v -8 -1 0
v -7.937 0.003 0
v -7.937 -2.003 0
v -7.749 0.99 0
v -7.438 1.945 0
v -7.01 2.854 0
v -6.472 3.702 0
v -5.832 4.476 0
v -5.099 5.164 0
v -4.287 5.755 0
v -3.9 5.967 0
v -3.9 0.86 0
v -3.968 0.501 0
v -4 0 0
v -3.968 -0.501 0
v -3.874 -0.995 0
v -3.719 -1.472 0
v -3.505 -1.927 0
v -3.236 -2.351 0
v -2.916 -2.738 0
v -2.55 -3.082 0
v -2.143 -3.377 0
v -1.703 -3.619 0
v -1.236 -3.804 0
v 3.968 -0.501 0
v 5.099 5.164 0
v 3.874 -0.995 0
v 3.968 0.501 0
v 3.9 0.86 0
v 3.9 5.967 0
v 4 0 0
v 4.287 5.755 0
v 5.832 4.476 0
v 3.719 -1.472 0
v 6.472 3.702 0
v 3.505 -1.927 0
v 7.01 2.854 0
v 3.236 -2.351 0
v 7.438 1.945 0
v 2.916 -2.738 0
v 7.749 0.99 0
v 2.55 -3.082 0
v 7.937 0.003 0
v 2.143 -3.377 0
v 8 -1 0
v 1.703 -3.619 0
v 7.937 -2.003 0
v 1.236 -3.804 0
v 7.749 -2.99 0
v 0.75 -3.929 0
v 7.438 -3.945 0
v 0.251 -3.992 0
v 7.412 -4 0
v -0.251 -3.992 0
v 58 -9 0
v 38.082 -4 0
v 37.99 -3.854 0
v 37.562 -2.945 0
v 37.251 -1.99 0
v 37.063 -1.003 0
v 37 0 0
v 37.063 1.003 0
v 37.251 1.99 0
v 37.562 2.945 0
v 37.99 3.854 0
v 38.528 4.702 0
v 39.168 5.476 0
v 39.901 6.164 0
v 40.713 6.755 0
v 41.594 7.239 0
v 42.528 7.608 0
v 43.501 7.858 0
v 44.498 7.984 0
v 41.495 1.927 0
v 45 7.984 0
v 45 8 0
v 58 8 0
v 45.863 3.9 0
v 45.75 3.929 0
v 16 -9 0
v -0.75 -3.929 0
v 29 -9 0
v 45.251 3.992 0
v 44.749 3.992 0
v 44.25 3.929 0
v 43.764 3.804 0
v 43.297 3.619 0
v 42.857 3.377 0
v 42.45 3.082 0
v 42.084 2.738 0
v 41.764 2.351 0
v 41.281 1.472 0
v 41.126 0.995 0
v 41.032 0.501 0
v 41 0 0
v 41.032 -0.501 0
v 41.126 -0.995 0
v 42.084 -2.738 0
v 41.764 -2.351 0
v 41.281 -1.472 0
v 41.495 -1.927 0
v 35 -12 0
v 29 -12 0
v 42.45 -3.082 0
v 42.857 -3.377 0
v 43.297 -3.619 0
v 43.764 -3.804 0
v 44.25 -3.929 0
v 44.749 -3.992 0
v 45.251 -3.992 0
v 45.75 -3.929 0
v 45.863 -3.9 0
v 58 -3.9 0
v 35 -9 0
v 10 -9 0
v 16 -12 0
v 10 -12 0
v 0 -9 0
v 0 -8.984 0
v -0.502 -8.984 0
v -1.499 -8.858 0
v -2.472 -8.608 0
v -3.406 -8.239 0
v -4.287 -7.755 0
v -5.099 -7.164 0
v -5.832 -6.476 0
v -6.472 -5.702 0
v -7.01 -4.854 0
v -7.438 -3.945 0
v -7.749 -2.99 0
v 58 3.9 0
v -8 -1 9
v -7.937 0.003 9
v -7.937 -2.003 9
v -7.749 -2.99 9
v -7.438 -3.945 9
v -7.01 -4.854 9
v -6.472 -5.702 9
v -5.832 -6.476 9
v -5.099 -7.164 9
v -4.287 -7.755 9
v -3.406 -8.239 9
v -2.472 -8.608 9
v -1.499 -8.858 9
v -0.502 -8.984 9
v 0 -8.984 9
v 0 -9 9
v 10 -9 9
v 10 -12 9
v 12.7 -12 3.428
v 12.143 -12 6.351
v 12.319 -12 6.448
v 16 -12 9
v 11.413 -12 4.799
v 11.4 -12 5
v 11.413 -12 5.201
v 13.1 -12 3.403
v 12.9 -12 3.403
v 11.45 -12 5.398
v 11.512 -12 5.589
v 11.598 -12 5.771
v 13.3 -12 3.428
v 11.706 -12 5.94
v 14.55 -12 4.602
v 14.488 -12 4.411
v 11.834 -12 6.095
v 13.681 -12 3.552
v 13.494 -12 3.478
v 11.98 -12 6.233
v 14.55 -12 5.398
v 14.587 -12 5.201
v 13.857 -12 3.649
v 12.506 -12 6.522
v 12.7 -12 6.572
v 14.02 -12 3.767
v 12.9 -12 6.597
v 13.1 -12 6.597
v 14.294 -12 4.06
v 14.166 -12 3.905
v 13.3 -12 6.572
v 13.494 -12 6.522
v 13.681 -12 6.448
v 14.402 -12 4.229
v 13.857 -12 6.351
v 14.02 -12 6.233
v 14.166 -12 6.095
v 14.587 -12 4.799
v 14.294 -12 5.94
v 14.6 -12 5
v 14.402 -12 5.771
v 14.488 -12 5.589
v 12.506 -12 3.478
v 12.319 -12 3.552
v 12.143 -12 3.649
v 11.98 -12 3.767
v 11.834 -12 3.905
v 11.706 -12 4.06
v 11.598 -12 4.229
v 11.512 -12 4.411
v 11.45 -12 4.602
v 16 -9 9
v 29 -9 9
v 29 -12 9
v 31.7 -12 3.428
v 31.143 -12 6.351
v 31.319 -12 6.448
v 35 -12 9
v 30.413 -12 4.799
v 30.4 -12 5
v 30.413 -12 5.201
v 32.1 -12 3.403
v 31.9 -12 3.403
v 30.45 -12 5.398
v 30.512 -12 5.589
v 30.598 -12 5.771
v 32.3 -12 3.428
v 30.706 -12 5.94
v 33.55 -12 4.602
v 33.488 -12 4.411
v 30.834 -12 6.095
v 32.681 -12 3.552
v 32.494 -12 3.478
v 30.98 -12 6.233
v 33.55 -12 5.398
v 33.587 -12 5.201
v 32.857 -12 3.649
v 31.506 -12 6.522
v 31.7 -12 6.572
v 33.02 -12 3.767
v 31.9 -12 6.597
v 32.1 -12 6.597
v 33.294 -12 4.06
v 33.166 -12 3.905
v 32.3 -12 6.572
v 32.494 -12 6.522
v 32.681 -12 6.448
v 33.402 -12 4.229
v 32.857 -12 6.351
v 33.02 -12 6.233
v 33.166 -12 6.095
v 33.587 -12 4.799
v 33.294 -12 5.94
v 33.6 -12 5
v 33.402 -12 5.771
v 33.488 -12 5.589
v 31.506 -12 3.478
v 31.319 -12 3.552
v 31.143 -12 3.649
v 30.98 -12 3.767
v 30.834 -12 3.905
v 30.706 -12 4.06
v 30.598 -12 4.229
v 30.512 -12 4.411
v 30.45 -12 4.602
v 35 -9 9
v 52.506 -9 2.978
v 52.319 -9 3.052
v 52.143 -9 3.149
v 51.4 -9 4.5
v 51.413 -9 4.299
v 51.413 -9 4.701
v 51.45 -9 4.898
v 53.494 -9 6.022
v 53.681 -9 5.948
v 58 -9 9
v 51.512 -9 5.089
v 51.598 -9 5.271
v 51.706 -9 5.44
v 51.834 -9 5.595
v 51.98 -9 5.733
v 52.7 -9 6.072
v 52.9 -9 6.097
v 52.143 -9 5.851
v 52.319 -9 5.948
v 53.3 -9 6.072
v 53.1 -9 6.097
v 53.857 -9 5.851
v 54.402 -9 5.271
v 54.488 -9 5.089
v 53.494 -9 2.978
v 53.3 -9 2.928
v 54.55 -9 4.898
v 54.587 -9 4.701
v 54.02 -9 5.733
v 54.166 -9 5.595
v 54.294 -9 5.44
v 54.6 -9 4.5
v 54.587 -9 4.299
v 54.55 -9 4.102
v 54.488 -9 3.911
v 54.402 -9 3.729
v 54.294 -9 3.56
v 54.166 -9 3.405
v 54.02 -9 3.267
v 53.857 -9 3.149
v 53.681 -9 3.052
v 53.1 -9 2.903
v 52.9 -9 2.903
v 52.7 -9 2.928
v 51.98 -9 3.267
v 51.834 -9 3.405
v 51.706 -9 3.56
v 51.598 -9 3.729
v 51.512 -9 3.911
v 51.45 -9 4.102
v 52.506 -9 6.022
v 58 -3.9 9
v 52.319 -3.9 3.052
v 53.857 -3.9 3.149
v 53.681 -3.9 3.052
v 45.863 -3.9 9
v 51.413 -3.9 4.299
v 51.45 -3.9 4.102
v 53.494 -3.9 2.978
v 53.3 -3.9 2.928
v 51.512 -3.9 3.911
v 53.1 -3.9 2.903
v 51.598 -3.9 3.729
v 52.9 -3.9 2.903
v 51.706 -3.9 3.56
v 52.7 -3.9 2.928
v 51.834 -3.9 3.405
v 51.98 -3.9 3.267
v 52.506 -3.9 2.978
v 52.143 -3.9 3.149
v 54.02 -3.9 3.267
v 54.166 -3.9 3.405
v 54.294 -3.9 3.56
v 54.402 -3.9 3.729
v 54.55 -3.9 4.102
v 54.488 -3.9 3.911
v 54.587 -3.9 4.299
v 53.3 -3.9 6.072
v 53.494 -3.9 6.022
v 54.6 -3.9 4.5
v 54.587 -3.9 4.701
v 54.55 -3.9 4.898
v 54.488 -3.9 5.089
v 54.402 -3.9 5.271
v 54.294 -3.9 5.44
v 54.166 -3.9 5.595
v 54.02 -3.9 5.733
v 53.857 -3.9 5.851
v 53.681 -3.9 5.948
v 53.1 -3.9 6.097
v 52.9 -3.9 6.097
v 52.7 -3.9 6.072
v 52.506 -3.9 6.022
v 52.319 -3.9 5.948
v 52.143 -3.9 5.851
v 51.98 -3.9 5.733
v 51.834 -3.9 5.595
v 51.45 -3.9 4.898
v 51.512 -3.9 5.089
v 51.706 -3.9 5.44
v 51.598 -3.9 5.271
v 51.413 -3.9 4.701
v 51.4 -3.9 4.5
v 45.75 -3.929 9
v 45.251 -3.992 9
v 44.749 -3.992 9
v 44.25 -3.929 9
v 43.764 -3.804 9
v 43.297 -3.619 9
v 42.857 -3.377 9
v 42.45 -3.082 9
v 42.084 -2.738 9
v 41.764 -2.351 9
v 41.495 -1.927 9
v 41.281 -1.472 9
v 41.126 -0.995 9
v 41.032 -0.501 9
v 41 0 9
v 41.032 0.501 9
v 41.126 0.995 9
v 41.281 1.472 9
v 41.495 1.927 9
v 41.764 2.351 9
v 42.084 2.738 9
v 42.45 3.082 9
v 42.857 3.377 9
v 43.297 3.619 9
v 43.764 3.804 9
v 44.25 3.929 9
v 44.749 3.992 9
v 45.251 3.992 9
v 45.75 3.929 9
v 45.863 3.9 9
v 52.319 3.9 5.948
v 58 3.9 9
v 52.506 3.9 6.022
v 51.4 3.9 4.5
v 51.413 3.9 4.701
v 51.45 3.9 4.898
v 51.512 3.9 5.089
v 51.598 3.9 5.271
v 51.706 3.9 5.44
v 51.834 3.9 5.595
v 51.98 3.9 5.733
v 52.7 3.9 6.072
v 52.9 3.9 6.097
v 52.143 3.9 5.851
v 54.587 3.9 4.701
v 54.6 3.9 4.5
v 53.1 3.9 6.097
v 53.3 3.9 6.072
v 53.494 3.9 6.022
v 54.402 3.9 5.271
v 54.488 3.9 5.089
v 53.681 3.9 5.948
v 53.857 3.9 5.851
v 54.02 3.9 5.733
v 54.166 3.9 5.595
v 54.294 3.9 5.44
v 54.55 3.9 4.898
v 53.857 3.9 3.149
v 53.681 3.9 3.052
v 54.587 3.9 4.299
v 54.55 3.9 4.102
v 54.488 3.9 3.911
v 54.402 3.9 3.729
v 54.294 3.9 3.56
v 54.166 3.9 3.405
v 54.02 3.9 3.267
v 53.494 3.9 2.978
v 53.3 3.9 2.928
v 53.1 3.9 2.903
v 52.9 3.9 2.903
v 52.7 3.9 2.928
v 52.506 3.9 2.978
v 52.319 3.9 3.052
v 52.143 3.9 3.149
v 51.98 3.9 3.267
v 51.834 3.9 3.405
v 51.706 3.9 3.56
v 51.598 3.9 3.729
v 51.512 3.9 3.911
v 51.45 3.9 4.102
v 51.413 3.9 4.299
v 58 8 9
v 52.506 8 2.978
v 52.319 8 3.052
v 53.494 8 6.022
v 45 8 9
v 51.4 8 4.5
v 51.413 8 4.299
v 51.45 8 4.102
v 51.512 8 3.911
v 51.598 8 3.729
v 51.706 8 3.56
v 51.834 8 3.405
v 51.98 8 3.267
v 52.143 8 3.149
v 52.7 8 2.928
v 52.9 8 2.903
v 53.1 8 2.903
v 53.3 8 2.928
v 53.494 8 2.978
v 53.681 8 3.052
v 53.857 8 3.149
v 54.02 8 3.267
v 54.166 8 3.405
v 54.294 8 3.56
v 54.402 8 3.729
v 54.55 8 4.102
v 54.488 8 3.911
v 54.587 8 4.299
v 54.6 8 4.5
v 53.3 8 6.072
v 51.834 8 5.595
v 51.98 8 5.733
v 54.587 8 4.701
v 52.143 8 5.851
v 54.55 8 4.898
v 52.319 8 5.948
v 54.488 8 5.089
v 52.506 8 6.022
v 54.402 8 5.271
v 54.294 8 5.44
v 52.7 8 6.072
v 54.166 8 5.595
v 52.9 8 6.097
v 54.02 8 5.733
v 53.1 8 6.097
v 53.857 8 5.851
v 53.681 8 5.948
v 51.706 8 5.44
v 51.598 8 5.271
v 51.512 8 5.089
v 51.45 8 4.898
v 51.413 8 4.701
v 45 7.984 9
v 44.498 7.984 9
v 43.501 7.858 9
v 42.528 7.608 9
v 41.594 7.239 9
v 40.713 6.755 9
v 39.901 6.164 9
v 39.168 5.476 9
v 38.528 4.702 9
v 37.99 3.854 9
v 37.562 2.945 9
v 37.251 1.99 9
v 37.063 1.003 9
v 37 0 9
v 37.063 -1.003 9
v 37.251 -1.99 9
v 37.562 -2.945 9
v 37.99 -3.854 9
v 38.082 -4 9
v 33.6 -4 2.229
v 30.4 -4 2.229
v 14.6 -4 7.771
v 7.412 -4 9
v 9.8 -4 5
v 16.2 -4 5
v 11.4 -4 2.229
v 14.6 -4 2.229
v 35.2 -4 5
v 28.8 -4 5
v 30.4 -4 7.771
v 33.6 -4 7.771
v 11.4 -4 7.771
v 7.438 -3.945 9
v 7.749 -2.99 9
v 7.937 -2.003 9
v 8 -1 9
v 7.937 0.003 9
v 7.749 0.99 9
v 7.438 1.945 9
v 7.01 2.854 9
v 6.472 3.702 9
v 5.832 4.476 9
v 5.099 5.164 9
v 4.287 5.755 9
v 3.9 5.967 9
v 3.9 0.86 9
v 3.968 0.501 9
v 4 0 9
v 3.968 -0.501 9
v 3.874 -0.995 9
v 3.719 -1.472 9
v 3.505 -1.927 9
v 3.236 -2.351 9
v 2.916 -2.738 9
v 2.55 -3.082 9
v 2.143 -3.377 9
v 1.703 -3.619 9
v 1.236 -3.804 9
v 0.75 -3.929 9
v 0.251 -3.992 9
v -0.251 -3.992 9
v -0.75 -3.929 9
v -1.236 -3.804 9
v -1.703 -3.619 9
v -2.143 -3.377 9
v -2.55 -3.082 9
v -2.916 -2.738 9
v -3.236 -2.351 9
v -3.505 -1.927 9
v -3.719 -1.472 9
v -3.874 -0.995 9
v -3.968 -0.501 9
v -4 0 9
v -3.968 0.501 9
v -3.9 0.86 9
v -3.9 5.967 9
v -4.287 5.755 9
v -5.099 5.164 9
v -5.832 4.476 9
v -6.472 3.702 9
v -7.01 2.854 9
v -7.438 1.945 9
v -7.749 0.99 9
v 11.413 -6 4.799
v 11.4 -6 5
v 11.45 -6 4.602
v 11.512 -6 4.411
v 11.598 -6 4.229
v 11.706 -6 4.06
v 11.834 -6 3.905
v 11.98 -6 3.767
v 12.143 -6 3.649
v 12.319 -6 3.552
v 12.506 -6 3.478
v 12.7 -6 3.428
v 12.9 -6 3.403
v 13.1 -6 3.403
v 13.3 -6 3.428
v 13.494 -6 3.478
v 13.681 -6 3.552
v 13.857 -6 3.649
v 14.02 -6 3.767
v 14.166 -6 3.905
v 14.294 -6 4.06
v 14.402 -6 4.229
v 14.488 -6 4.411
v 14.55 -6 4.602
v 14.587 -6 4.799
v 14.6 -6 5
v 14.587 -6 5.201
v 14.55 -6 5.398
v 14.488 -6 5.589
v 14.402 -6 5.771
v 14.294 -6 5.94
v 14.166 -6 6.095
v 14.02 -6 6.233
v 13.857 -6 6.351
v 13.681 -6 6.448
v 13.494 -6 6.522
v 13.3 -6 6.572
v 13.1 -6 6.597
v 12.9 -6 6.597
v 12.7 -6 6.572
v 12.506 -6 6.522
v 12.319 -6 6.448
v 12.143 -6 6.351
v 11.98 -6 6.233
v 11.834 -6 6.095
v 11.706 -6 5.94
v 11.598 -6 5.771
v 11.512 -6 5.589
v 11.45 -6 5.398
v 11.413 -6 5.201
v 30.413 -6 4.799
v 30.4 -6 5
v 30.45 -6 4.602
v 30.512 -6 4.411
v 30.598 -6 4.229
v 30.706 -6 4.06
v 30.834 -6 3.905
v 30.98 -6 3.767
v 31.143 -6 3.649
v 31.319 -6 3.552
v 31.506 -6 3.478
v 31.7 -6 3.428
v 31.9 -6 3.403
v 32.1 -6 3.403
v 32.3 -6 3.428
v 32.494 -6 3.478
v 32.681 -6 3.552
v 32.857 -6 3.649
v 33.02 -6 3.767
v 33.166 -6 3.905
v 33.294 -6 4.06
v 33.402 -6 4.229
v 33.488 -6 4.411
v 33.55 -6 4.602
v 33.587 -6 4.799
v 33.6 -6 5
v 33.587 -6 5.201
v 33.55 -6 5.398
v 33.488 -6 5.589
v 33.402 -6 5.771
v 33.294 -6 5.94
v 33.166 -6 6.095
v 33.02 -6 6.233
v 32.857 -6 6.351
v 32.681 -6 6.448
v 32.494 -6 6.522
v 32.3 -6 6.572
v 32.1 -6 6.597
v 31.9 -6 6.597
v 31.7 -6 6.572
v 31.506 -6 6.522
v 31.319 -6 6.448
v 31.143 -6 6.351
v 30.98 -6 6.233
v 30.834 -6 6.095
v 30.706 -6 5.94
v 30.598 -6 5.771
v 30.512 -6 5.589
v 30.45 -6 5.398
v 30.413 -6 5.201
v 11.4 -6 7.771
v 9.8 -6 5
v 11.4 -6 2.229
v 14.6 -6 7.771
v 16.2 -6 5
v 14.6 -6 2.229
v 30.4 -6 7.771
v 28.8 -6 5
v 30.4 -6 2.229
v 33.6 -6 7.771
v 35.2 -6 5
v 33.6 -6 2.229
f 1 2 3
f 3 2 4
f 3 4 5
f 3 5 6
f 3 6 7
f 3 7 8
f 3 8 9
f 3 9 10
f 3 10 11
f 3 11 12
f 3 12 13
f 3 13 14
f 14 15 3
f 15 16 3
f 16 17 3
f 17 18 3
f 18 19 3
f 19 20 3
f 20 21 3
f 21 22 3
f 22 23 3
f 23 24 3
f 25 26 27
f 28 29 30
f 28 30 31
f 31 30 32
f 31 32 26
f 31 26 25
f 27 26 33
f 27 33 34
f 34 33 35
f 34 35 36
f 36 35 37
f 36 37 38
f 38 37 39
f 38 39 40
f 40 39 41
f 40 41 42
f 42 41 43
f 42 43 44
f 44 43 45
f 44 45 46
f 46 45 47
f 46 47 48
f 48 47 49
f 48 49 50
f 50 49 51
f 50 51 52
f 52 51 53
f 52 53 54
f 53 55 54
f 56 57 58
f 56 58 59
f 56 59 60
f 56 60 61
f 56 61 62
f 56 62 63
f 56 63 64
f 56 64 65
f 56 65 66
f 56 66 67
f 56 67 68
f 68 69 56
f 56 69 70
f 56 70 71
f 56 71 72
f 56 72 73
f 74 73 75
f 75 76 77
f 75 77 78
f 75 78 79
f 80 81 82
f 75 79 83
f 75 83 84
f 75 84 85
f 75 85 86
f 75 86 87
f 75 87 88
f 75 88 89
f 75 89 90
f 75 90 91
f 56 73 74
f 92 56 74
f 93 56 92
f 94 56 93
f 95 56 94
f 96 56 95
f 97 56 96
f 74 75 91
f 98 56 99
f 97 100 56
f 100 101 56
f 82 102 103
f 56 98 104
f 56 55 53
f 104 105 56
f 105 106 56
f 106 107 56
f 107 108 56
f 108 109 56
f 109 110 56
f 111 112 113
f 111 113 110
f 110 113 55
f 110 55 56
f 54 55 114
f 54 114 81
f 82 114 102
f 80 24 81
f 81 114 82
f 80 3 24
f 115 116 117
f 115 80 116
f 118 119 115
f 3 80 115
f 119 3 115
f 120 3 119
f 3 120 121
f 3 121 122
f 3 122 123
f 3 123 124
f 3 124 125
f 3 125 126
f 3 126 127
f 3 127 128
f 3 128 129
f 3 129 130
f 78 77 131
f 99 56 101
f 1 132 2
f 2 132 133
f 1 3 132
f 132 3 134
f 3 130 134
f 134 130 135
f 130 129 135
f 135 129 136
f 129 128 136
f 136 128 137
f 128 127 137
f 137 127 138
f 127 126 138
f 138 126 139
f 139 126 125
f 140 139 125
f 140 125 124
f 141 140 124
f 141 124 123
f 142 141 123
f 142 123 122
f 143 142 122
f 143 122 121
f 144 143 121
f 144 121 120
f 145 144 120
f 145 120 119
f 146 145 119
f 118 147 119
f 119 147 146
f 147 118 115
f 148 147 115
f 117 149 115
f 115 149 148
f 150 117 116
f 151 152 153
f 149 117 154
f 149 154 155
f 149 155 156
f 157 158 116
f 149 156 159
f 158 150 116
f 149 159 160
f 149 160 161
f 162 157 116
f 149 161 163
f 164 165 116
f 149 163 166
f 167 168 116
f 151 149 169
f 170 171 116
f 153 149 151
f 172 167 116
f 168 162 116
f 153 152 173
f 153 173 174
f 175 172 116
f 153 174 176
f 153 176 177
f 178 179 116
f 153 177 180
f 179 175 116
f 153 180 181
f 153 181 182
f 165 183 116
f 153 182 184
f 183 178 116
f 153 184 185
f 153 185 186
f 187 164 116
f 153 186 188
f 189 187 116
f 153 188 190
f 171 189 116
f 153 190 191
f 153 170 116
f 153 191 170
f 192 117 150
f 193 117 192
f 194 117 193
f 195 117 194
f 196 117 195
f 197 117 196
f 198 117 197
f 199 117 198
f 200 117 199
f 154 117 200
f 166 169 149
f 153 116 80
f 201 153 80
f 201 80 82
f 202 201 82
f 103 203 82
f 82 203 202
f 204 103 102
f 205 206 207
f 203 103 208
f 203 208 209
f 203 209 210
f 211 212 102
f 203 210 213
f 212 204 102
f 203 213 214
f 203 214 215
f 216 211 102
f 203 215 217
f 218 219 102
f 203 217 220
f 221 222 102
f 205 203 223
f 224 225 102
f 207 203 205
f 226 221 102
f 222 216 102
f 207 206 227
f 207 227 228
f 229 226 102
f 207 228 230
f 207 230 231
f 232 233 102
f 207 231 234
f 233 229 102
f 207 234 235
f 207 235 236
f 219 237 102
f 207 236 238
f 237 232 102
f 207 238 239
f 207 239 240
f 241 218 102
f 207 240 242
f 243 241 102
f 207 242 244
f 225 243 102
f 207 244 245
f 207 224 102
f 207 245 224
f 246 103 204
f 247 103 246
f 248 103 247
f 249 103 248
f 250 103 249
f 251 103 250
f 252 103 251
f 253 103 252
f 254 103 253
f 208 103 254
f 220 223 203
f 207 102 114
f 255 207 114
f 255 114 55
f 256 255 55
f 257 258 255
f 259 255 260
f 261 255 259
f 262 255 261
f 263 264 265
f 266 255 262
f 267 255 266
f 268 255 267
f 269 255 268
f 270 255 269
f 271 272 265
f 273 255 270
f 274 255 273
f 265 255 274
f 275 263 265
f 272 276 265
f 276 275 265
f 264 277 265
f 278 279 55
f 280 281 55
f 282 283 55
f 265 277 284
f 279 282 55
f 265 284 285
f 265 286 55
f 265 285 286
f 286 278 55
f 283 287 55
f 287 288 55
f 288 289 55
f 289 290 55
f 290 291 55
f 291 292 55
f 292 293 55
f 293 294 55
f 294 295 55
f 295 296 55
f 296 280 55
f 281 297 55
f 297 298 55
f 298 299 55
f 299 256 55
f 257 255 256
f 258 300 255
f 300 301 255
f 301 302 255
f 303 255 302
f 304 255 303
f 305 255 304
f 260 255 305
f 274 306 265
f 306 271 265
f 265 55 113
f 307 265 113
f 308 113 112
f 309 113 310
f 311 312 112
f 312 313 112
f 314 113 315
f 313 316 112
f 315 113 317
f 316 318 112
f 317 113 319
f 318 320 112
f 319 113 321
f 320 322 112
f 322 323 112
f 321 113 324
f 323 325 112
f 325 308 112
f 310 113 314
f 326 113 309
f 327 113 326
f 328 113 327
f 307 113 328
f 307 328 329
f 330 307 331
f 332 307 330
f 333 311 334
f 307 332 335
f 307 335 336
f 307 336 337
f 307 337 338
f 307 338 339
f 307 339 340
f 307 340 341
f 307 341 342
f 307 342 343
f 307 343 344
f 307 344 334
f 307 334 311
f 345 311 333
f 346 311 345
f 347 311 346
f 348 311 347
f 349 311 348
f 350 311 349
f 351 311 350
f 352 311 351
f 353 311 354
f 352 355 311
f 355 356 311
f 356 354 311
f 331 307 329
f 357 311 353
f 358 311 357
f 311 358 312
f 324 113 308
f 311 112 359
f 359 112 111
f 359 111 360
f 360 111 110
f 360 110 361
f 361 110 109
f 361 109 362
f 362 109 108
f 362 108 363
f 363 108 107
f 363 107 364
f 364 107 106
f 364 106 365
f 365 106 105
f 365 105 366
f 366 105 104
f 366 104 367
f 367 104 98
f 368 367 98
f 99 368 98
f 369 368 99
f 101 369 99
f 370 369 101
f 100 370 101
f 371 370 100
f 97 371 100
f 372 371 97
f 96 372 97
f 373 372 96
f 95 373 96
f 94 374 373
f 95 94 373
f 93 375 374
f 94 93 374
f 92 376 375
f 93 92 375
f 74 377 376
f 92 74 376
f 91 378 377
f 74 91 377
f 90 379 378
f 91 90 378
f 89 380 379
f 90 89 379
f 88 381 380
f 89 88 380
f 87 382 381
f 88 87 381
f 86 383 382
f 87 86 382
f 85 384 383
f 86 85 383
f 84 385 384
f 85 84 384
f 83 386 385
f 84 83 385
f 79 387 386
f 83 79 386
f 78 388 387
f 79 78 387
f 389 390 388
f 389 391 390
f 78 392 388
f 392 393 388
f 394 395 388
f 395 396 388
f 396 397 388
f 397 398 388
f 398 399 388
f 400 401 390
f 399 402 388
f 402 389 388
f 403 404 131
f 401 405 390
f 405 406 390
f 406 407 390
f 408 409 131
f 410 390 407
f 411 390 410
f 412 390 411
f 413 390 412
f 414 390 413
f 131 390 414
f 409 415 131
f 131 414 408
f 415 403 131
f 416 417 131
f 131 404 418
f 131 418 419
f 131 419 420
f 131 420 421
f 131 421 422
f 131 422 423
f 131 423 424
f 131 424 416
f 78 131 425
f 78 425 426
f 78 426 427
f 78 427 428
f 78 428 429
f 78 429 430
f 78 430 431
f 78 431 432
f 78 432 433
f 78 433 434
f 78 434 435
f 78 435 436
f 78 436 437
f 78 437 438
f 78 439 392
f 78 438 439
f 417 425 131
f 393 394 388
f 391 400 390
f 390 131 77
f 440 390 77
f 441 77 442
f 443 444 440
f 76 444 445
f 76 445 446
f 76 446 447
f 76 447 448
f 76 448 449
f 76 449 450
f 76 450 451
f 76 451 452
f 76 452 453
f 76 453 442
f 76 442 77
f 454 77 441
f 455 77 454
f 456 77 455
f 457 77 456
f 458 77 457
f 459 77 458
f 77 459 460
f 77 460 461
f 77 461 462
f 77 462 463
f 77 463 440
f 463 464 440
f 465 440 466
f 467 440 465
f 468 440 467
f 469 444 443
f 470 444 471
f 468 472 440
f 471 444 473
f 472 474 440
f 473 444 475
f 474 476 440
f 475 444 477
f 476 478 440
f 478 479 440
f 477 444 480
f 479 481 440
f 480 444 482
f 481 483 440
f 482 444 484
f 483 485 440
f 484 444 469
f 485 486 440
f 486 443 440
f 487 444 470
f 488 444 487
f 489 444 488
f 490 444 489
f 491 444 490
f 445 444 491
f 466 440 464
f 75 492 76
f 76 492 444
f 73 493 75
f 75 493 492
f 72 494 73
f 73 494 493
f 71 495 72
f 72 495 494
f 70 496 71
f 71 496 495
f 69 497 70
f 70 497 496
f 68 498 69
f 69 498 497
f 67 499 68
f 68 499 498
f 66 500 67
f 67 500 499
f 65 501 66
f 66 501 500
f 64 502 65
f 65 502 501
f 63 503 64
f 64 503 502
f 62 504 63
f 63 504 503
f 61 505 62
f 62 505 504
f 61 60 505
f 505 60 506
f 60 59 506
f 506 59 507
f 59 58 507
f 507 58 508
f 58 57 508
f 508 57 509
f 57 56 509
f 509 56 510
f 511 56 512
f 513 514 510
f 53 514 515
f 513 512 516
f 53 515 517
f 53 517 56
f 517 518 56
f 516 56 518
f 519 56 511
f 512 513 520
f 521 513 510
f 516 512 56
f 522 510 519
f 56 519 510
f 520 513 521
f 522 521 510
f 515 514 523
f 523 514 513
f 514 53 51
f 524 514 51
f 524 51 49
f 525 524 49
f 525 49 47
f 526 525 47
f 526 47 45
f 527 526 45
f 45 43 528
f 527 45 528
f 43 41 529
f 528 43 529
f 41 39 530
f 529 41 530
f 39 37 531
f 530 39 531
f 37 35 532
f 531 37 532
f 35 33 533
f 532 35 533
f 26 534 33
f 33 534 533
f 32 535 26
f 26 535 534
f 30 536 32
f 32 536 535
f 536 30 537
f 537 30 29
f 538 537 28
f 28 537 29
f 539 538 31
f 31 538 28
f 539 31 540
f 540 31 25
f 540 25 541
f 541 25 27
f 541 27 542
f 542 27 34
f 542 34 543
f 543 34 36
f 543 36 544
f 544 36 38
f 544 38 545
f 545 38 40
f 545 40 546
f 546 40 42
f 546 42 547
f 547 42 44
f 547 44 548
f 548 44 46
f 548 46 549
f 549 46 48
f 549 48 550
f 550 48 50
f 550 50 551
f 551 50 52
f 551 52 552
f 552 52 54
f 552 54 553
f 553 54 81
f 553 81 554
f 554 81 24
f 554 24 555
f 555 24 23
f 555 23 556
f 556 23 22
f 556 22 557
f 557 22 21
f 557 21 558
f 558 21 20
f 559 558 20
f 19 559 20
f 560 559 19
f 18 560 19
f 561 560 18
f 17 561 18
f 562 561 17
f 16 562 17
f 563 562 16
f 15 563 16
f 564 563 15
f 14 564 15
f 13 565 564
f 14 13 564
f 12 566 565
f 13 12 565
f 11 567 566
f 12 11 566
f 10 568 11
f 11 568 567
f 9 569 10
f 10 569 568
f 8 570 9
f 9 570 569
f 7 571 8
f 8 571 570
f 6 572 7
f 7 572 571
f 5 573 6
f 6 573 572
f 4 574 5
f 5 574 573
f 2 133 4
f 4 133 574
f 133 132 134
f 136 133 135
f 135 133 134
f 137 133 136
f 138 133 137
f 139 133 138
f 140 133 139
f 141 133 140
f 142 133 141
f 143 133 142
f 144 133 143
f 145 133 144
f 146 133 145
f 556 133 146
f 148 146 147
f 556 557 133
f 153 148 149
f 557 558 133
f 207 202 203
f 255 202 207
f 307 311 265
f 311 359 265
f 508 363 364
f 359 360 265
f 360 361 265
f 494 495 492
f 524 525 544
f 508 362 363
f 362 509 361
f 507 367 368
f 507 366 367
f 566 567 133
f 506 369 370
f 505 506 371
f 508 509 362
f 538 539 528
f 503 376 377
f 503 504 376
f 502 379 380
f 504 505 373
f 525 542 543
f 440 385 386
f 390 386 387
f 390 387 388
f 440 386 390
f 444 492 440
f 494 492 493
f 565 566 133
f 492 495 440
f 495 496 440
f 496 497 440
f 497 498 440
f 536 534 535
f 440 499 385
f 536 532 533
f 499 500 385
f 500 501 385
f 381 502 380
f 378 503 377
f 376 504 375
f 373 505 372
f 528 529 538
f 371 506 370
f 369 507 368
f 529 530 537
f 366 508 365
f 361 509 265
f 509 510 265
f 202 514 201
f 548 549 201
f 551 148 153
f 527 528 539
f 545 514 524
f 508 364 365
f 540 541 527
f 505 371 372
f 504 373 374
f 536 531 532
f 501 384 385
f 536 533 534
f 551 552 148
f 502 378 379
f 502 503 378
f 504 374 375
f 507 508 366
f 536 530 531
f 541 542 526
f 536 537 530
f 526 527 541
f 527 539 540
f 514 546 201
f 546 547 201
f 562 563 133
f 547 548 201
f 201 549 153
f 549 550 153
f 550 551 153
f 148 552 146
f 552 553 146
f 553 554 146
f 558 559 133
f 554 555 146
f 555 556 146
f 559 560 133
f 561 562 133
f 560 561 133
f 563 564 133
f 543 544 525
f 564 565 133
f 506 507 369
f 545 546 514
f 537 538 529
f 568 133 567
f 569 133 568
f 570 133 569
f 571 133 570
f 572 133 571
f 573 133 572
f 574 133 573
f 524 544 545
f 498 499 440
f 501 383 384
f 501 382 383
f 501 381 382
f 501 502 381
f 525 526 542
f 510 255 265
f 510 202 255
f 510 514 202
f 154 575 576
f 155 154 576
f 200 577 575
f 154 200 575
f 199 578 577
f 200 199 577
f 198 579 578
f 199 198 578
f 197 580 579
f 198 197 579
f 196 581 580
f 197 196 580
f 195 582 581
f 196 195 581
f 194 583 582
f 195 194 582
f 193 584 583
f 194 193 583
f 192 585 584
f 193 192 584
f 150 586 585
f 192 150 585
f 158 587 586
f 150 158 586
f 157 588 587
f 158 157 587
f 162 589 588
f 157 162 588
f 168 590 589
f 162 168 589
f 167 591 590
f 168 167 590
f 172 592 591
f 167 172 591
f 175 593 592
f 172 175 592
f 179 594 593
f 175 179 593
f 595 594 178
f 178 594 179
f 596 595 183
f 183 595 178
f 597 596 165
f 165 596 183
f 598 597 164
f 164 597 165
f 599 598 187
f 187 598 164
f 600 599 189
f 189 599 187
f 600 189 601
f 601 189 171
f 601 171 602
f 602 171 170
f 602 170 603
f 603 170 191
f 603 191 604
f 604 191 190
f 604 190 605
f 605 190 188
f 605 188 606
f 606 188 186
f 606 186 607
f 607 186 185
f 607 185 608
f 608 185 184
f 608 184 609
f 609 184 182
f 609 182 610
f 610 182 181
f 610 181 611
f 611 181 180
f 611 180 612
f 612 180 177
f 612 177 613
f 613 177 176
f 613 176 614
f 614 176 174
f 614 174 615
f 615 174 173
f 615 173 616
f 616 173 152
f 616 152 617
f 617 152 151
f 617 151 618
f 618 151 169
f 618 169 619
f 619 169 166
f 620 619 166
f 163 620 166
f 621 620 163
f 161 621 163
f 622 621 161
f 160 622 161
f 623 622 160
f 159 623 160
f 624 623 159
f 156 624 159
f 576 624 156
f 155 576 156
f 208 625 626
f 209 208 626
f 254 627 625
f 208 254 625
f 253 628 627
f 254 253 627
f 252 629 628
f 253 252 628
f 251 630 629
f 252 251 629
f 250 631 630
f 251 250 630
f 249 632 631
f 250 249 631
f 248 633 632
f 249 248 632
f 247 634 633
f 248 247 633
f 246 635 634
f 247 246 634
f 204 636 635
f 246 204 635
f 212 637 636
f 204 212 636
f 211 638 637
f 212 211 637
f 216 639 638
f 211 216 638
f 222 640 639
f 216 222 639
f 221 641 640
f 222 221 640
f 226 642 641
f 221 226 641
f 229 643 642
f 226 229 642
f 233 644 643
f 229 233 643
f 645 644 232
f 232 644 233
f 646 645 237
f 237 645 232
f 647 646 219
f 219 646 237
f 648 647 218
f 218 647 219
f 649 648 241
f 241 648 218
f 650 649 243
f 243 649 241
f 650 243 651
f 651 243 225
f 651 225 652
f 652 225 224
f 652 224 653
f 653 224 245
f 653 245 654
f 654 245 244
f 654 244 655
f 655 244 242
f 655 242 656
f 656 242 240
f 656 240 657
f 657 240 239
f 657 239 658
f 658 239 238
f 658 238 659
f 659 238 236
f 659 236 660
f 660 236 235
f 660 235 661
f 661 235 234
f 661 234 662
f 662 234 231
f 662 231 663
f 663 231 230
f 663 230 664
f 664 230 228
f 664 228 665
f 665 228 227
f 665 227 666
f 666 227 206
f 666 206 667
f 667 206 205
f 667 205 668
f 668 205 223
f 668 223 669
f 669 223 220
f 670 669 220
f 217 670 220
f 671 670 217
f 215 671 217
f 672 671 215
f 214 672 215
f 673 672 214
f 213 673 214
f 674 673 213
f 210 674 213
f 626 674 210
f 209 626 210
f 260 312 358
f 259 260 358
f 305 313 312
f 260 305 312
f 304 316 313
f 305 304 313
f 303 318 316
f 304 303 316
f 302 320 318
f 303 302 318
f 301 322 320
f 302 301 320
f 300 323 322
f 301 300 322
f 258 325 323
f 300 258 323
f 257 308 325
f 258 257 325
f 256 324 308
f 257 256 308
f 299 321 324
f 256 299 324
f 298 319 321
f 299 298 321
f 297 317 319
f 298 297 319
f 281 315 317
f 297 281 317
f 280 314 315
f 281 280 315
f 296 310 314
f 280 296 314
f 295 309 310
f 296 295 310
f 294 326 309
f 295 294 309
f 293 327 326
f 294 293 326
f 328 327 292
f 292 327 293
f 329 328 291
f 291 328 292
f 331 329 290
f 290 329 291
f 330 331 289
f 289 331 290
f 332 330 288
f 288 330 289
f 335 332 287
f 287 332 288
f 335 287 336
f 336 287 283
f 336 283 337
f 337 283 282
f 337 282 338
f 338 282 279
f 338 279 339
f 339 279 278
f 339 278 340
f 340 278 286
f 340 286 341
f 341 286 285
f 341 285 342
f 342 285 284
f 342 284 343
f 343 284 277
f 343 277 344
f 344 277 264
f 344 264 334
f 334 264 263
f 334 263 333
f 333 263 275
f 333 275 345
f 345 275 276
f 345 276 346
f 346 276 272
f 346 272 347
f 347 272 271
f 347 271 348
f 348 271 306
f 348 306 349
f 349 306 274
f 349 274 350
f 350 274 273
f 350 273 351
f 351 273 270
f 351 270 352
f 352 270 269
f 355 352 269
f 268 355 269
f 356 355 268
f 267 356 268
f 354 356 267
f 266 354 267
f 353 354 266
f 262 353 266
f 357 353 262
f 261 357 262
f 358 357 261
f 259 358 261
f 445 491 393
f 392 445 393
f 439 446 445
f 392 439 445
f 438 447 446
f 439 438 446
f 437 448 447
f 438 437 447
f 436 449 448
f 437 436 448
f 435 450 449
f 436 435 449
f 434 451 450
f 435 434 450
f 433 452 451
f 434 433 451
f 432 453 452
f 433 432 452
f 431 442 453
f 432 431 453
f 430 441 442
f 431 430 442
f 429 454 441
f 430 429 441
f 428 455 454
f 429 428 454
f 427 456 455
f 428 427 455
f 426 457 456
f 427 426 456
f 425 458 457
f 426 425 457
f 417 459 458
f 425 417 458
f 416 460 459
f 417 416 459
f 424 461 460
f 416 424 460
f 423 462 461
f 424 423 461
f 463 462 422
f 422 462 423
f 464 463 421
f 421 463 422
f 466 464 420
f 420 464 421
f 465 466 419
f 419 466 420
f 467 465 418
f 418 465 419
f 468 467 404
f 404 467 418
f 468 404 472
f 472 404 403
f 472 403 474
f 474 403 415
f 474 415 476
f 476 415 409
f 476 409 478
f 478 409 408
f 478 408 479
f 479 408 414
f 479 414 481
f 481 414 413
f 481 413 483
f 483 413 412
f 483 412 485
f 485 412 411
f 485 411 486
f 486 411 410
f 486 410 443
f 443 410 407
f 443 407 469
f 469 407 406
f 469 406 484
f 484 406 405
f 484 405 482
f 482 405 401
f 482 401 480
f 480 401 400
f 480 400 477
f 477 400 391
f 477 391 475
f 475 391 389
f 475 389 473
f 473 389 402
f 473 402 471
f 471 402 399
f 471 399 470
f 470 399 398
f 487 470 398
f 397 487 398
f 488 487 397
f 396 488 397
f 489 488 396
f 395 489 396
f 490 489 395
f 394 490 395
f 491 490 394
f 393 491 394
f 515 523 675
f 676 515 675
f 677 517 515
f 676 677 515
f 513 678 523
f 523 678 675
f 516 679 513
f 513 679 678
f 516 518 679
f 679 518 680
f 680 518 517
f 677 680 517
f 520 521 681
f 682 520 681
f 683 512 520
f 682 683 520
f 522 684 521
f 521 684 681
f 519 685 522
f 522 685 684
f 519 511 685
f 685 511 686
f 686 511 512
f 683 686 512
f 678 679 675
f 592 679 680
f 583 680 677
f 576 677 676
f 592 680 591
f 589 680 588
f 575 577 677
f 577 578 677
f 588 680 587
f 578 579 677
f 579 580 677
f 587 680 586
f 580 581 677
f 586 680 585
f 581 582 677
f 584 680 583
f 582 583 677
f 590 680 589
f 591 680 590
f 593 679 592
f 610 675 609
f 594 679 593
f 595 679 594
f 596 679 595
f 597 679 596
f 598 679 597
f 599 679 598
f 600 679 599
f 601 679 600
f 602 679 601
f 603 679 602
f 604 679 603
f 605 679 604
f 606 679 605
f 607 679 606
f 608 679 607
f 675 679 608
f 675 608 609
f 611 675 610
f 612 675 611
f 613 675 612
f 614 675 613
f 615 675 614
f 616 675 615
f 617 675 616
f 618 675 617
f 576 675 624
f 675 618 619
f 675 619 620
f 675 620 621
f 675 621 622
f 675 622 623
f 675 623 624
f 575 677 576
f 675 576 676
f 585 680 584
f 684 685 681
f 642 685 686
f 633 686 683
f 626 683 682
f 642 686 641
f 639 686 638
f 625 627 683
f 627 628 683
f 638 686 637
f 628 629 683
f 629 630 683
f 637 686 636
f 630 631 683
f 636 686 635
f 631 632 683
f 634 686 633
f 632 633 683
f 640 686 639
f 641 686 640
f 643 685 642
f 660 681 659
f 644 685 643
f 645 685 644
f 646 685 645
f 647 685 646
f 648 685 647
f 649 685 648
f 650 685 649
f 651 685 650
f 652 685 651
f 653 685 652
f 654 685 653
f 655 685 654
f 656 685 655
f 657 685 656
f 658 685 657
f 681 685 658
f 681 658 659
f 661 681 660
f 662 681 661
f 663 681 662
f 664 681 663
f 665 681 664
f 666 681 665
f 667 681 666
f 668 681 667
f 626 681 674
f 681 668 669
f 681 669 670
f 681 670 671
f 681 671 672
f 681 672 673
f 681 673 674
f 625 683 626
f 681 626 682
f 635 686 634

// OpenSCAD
$fn=50;
module mod1() {
	difference () {
		union () {
			translate ([0,-1,0]) cylinder (r=8, h=9);
			translate ([45,0,0]) cylinder (r=8, h=9);
			translate ([0,-9,0]) cube ([58,5,9]);
			translate ([45,-9,0]) cube ([13,17,9]);
	//		translate ([-11.7/2,-12.2,0]) cube ([11.7,9,6.2]);
	//		translate ([16,-12.2,0]) cube ([6,6,6.2]);

			translate ([10,-12,0]) cube ([6,4,9]);
			translate ([29,-12,0]) cube ([6,4,9]);

//			translate ([9,-4,0]) cube ([8,2,9]);
//			translate ([28,-4,0]) cube ([8,2,9]);
		}
		translate ([45,0,-1]) cylinder (r=4, h=10);
		translate ([-3.9,0,-1]) cube ([7.8,15,10]);
		translate ([45,-3.9,-1]) cube ([15,7.8,10]);
		translate ([0,0,-1]) cylinder (r=4, h=10);
		
		
		translate ([13,0,5]) rotate ([90,0,0]) cylinder (r=1.6, h=20);
		translate ([32,0,5]) rotate ([90,0,0]) cylinder (r=1.6, h=20);

		translate ([13,0,5]) rotate ([90,0,0]) cylinder (r=3.2, h=6, $fn=6);
		translate ([32,0,5]) rotate ([90,0,0]) cylinder (r=3.2, h=6, $fn=6);

		translate ([53,15,4.5]) rotate ([90,0,0]) cylinder (r=1.6, h=30);
	}
}

mod1();

//translate ([54,15,3.1]) rotate ([90,0,0]) cylinder (r=1.6, h=30);
